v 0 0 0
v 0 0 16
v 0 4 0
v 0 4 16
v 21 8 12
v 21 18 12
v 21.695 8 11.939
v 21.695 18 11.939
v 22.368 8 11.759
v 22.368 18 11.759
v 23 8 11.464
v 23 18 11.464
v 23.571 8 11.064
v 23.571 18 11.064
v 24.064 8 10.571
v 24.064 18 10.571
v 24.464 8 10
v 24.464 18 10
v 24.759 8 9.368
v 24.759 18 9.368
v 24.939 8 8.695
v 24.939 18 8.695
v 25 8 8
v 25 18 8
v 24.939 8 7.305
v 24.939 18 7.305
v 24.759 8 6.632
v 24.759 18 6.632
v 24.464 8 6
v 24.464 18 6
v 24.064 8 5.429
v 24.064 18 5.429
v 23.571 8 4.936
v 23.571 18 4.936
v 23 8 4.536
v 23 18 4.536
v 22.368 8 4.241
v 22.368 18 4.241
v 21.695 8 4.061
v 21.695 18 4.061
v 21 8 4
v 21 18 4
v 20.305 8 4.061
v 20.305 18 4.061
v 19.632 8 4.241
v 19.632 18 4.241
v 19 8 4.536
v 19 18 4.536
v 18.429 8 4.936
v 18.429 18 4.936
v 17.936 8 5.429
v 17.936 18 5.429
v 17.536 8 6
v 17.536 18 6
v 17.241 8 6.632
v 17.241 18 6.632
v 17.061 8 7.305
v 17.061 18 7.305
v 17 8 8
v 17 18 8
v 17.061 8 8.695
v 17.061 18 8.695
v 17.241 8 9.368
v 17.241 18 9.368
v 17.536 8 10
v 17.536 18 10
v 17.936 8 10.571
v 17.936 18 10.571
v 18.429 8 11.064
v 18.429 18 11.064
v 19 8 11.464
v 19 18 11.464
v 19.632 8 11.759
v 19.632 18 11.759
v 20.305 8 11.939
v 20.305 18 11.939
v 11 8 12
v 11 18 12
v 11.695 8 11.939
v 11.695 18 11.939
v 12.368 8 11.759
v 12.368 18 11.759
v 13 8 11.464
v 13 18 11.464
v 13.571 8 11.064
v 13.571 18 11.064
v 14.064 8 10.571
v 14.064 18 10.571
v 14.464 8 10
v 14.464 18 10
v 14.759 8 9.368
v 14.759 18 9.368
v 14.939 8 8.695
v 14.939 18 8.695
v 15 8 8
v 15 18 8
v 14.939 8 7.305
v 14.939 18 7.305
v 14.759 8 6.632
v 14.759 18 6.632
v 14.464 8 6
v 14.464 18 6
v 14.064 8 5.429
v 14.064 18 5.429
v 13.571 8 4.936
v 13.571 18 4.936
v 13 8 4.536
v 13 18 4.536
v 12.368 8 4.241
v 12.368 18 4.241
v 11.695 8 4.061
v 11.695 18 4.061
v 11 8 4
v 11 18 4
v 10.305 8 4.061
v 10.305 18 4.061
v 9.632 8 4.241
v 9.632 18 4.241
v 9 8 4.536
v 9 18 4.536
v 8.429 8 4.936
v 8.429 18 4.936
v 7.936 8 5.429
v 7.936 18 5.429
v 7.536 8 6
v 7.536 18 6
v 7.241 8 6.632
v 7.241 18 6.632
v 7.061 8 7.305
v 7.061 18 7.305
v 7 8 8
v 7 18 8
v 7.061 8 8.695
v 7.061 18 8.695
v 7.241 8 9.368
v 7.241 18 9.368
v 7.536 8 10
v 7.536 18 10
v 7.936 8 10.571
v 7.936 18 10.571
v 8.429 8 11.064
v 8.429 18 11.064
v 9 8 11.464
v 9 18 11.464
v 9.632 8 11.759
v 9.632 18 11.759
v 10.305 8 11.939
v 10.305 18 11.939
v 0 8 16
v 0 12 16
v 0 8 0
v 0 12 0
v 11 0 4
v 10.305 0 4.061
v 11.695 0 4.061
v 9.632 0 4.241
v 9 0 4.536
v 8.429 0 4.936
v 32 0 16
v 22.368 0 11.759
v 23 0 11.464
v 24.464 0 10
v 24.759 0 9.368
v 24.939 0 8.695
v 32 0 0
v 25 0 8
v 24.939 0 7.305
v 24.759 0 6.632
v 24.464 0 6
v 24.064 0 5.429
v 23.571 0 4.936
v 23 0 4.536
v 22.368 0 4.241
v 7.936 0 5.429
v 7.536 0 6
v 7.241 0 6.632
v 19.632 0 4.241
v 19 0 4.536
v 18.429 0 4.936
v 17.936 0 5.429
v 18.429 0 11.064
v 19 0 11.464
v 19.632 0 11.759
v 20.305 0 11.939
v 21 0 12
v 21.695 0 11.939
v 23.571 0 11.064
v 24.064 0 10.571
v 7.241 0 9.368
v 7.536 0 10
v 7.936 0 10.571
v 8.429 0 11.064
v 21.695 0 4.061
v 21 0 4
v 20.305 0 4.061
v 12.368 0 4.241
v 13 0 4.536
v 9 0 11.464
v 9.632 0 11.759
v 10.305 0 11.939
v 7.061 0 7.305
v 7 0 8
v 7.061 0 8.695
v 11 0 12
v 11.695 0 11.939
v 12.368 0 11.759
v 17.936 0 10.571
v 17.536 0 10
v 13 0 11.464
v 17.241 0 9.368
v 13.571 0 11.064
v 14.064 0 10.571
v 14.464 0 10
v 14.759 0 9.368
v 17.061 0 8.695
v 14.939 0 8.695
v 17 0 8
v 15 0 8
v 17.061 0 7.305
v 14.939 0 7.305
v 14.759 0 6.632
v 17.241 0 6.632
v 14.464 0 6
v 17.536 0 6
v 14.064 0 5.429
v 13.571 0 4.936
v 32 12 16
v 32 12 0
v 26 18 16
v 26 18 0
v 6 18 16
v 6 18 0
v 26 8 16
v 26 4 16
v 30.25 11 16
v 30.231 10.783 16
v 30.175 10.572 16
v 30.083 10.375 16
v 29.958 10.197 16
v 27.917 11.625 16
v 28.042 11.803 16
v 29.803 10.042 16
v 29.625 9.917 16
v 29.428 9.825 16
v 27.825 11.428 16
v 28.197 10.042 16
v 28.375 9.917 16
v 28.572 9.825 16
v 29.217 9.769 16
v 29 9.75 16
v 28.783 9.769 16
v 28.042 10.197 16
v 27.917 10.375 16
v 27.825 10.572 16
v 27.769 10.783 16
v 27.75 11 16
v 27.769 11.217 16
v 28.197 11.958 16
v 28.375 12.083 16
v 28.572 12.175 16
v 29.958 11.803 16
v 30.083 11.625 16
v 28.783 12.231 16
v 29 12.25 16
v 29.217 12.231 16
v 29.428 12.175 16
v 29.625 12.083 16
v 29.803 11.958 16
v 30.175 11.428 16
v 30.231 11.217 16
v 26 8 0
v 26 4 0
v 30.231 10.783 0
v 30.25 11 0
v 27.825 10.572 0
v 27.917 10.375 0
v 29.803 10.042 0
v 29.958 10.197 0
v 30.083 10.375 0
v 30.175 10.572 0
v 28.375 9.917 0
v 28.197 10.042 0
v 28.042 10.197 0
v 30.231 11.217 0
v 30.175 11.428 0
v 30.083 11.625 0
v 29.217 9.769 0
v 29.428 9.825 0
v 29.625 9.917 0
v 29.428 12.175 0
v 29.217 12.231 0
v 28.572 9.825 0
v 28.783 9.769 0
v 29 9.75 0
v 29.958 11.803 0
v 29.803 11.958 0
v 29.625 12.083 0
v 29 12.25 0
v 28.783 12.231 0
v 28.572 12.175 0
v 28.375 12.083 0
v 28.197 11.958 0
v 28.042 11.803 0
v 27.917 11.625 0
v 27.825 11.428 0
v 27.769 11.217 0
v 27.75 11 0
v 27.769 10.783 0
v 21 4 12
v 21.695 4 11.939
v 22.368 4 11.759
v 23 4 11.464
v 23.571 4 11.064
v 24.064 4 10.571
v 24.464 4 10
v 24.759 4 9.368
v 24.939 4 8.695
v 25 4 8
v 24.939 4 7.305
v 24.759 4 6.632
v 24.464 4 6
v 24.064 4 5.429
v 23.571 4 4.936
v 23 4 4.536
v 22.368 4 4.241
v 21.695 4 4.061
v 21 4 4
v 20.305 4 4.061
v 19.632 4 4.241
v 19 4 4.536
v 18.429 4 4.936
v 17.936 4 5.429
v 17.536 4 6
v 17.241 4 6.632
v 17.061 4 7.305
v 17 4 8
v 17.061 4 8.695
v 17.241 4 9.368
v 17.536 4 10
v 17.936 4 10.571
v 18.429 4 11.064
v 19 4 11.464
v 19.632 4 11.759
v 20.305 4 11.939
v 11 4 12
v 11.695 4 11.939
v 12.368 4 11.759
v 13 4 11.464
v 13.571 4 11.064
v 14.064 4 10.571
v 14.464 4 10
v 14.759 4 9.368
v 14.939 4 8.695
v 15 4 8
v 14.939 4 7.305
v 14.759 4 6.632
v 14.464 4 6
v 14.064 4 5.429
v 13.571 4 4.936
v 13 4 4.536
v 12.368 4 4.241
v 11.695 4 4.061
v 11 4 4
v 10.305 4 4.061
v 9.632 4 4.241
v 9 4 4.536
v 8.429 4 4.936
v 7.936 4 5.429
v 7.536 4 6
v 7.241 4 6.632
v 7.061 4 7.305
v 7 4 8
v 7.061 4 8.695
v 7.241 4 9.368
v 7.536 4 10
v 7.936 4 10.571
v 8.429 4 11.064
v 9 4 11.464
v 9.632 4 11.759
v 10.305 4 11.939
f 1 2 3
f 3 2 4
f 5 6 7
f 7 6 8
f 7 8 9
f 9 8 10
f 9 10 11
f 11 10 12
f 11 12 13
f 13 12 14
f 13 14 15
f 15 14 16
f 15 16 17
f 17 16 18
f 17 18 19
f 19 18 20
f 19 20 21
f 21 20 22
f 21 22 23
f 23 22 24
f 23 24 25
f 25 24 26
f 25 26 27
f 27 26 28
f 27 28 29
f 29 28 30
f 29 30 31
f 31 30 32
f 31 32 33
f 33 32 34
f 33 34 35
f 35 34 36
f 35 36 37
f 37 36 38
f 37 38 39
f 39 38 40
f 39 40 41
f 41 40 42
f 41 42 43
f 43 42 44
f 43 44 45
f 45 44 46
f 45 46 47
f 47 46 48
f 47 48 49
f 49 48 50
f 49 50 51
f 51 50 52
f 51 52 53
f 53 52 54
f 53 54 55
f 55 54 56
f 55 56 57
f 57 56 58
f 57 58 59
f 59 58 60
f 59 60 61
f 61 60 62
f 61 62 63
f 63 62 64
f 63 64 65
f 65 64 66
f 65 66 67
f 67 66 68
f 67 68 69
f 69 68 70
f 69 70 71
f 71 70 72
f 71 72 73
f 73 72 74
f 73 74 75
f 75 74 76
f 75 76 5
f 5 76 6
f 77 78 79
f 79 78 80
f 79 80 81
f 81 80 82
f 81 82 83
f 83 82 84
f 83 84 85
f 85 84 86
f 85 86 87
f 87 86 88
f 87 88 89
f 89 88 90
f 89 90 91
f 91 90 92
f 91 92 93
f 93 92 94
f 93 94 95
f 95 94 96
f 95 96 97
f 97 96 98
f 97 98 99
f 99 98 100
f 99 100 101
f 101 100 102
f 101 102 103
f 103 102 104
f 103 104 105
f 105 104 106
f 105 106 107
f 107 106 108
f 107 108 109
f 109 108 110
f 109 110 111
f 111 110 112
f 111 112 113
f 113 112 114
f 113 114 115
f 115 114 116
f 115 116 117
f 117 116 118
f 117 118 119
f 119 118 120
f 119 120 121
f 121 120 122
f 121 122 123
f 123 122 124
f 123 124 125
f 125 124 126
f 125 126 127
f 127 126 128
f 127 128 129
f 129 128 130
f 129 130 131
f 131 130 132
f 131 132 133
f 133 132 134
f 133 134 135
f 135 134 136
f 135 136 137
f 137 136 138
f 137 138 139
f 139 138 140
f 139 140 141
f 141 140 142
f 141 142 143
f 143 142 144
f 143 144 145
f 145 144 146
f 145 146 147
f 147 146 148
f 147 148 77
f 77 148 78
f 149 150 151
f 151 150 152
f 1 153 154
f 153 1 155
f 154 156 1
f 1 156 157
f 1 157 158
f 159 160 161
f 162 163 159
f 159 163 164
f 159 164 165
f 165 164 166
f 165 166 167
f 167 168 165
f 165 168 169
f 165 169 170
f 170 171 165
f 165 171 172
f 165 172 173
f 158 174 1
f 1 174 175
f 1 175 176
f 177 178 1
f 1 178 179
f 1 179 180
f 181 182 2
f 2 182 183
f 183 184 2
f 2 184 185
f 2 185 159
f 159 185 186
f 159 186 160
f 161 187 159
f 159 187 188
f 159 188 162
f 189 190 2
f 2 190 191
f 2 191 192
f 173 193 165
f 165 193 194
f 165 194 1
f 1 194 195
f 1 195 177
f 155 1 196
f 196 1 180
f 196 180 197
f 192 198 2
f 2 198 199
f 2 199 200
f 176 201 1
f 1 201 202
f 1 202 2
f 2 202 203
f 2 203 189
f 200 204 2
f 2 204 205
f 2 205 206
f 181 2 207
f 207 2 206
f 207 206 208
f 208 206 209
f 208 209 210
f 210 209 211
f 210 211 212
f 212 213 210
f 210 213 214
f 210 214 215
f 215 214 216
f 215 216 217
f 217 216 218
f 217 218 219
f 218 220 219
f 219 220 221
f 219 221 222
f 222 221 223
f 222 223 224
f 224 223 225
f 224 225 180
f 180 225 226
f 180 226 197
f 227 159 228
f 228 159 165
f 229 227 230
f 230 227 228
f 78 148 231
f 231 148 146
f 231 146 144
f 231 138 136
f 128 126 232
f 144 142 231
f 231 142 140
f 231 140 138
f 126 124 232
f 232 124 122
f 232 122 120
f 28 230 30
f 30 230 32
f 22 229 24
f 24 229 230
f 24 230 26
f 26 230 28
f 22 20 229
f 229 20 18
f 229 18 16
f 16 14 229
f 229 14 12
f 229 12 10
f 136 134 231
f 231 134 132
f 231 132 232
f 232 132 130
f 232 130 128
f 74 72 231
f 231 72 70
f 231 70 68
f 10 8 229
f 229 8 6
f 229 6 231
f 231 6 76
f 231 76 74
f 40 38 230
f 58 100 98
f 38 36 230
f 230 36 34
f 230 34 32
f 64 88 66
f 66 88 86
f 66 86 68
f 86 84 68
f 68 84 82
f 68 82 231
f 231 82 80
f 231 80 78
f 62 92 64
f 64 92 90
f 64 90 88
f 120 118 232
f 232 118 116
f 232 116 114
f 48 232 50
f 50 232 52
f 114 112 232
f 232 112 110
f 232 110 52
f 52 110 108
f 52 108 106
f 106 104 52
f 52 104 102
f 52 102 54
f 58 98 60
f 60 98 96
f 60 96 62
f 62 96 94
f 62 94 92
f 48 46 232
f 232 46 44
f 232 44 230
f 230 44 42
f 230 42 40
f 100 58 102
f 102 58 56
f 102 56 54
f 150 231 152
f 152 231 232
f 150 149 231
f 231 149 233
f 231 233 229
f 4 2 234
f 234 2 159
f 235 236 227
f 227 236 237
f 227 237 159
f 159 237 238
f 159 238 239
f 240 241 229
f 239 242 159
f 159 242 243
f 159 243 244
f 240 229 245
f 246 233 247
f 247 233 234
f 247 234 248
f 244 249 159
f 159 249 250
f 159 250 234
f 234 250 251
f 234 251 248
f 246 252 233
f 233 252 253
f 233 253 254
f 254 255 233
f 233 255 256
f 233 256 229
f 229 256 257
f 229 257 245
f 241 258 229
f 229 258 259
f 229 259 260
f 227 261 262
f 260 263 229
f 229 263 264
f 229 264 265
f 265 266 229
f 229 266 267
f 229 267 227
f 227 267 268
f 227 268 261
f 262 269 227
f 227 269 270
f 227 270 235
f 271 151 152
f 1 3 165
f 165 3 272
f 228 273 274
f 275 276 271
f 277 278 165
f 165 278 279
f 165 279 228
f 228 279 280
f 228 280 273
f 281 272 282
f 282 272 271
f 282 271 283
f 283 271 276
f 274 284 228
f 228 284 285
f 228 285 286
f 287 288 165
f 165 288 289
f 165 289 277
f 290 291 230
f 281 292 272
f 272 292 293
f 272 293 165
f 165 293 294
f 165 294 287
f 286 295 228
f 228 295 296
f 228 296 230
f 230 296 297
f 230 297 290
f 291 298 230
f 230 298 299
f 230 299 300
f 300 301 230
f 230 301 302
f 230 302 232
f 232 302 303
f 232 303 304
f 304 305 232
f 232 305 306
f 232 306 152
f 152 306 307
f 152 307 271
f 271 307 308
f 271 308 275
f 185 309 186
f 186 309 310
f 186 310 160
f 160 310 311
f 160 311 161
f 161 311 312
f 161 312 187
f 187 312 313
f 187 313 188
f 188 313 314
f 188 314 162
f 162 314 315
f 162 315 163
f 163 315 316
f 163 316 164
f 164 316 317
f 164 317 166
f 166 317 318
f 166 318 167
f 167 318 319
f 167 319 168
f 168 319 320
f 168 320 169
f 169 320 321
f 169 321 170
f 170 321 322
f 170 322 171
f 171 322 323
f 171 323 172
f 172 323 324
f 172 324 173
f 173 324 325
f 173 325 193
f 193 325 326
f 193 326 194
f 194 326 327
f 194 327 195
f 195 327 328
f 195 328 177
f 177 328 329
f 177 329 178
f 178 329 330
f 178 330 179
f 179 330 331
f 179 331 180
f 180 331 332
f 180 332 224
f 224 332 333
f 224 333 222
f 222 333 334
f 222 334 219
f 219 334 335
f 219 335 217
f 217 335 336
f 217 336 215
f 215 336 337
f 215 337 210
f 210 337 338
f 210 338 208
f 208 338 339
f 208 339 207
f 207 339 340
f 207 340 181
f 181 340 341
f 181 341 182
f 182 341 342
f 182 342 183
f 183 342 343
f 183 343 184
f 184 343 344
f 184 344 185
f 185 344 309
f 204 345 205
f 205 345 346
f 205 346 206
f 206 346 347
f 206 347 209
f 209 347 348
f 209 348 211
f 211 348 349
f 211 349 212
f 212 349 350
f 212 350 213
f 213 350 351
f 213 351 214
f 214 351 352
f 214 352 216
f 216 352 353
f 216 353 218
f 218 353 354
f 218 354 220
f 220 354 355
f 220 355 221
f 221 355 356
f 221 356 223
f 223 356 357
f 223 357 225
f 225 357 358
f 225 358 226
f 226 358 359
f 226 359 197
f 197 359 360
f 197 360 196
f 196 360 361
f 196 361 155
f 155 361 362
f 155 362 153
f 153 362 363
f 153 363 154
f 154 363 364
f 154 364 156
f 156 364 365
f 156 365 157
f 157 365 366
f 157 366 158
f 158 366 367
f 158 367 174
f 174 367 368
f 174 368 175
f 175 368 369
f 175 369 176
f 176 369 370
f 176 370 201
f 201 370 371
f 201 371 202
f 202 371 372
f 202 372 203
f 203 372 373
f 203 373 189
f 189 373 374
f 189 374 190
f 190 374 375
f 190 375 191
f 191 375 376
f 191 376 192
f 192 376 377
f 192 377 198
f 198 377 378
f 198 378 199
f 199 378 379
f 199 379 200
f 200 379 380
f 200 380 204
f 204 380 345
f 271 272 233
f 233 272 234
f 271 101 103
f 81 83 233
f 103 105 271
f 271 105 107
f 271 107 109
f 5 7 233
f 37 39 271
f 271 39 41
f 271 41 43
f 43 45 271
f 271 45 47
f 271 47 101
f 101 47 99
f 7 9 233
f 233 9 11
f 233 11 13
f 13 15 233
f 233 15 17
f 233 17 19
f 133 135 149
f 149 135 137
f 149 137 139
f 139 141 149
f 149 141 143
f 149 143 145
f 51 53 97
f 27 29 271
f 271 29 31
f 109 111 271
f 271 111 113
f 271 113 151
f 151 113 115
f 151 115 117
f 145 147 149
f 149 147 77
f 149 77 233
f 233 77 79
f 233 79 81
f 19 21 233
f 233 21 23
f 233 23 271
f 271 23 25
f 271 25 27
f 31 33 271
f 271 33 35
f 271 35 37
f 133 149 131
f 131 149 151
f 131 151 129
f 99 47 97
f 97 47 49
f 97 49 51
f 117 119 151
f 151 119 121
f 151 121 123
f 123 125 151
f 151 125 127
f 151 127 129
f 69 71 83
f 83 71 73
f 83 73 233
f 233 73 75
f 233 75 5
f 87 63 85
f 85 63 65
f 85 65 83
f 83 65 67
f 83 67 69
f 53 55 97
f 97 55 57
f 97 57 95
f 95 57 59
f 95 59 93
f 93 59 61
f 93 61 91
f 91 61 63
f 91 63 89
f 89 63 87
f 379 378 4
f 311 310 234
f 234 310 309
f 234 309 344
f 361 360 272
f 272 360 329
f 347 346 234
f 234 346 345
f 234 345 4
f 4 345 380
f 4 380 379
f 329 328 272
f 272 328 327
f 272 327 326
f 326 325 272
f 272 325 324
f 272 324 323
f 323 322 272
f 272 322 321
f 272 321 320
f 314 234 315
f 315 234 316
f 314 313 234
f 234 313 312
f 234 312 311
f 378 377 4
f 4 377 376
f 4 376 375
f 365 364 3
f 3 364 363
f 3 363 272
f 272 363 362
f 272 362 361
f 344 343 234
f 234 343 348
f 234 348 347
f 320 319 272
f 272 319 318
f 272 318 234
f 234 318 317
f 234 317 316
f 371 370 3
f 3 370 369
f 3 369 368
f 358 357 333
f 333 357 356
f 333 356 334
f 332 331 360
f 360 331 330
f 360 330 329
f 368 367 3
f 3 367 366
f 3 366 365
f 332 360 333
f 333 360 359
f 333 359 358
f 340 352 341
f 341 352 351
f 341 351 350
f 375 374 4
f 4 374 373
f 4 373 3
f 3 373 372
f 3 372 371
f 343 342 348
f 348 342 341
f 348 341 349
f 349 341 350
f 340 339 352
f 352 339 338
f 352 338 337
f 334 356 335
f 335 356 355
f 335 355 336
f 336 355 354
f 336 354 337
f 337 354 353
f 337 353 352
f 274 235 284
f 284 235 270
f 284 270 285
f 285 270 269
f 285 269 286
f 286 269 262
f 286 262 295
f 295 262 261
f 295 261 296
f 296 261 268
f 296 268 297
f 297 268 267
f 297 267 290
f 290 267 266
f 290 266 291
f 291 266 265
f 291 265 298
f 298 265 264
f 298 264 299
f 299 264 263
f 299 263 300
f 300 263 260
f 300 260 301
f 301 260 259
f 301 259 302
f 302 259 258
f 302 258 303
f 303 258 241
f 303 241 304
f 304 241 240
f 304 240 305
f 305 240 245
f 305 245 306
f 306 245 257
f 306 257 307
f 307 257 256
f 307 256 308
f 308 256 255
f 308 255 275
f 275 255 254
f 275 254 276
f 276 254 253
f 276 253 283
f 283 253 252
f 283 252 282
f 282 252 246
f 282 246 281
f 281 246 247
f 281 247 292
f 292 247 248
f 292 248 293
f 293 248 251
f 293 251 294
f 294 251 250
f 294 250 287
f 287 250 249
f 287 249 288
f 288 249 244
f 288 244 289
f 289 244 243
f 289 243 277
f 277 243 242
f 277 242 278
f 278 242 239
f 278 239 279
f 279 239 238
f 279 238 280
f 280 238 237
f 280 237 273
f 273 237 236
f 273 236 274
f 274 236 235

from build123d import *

# Parameters (mm, degrees)
BOSS_EXTRUDE1_DEPTH = 16
SKETCH2_R           = 4
CUT_EXTRUDE1_DEPTH  = 40
SKETCH3_W           = 26
SKETCH3_H           = 4
CUT_EXTRUDE2_DEPTH  = 40
SKETCH4_R           = 1.25
CUT_EXTRUDE3_DEPTH  = 40


with BuildPart() as part:
    # Sketch1 → Boss-Extrude1 (new body)
    with BuildSketch(Plane.XY):
        Polygon((0, 0), (32, 0), (32, 12), (26, 18), (6, 18), (0, 12), align=None)
    extrude(amount=BOSS_EXTRUDE1_DEPTH)

    # Sketch2 → Cut-Extrude1 (cut, symmetric)
    with BuildSketch(Plane(origin=(0, 0, 0), x_dir=(1, 0, 0), z_dir=(0, 1, 0))):
        with Locations(Location((11, -8, 0), (0, 0, 270))):
            Circle(SKETCH2_R)
        with Locations(Location((21, -8, 0), (0, 0, 270))):
            Circle(SKETCH2_R)
    extrude(amount=CUT_EXTRUDE1_DEPTH, both=True, mode=Mode.SUBTRACT)

    # Sketch3 → Cut-Extrude2 (cut, symmetric)
    with BuildSketch(Plane.XY):
        with Locations((13, 6)):
            Rectangle(SKETCH3_W, SKETCH3_H)
    extrude(amount=CUT_EXTRUDE2_DEPTH, both=True, mode=Mode.SUBTRACT)

    # Sketch4 → Cut-Extrude3 (cut, symmetric)
    with BuildSketch(Plane.XY):
        with Locations((29, 11)):
            Circle(SKETCH4_R)
    extrude(amount=CUT_EXTRUDE3_DEPTH, both=True, mode=Mode.SUBTRACT)


solid = part.part
